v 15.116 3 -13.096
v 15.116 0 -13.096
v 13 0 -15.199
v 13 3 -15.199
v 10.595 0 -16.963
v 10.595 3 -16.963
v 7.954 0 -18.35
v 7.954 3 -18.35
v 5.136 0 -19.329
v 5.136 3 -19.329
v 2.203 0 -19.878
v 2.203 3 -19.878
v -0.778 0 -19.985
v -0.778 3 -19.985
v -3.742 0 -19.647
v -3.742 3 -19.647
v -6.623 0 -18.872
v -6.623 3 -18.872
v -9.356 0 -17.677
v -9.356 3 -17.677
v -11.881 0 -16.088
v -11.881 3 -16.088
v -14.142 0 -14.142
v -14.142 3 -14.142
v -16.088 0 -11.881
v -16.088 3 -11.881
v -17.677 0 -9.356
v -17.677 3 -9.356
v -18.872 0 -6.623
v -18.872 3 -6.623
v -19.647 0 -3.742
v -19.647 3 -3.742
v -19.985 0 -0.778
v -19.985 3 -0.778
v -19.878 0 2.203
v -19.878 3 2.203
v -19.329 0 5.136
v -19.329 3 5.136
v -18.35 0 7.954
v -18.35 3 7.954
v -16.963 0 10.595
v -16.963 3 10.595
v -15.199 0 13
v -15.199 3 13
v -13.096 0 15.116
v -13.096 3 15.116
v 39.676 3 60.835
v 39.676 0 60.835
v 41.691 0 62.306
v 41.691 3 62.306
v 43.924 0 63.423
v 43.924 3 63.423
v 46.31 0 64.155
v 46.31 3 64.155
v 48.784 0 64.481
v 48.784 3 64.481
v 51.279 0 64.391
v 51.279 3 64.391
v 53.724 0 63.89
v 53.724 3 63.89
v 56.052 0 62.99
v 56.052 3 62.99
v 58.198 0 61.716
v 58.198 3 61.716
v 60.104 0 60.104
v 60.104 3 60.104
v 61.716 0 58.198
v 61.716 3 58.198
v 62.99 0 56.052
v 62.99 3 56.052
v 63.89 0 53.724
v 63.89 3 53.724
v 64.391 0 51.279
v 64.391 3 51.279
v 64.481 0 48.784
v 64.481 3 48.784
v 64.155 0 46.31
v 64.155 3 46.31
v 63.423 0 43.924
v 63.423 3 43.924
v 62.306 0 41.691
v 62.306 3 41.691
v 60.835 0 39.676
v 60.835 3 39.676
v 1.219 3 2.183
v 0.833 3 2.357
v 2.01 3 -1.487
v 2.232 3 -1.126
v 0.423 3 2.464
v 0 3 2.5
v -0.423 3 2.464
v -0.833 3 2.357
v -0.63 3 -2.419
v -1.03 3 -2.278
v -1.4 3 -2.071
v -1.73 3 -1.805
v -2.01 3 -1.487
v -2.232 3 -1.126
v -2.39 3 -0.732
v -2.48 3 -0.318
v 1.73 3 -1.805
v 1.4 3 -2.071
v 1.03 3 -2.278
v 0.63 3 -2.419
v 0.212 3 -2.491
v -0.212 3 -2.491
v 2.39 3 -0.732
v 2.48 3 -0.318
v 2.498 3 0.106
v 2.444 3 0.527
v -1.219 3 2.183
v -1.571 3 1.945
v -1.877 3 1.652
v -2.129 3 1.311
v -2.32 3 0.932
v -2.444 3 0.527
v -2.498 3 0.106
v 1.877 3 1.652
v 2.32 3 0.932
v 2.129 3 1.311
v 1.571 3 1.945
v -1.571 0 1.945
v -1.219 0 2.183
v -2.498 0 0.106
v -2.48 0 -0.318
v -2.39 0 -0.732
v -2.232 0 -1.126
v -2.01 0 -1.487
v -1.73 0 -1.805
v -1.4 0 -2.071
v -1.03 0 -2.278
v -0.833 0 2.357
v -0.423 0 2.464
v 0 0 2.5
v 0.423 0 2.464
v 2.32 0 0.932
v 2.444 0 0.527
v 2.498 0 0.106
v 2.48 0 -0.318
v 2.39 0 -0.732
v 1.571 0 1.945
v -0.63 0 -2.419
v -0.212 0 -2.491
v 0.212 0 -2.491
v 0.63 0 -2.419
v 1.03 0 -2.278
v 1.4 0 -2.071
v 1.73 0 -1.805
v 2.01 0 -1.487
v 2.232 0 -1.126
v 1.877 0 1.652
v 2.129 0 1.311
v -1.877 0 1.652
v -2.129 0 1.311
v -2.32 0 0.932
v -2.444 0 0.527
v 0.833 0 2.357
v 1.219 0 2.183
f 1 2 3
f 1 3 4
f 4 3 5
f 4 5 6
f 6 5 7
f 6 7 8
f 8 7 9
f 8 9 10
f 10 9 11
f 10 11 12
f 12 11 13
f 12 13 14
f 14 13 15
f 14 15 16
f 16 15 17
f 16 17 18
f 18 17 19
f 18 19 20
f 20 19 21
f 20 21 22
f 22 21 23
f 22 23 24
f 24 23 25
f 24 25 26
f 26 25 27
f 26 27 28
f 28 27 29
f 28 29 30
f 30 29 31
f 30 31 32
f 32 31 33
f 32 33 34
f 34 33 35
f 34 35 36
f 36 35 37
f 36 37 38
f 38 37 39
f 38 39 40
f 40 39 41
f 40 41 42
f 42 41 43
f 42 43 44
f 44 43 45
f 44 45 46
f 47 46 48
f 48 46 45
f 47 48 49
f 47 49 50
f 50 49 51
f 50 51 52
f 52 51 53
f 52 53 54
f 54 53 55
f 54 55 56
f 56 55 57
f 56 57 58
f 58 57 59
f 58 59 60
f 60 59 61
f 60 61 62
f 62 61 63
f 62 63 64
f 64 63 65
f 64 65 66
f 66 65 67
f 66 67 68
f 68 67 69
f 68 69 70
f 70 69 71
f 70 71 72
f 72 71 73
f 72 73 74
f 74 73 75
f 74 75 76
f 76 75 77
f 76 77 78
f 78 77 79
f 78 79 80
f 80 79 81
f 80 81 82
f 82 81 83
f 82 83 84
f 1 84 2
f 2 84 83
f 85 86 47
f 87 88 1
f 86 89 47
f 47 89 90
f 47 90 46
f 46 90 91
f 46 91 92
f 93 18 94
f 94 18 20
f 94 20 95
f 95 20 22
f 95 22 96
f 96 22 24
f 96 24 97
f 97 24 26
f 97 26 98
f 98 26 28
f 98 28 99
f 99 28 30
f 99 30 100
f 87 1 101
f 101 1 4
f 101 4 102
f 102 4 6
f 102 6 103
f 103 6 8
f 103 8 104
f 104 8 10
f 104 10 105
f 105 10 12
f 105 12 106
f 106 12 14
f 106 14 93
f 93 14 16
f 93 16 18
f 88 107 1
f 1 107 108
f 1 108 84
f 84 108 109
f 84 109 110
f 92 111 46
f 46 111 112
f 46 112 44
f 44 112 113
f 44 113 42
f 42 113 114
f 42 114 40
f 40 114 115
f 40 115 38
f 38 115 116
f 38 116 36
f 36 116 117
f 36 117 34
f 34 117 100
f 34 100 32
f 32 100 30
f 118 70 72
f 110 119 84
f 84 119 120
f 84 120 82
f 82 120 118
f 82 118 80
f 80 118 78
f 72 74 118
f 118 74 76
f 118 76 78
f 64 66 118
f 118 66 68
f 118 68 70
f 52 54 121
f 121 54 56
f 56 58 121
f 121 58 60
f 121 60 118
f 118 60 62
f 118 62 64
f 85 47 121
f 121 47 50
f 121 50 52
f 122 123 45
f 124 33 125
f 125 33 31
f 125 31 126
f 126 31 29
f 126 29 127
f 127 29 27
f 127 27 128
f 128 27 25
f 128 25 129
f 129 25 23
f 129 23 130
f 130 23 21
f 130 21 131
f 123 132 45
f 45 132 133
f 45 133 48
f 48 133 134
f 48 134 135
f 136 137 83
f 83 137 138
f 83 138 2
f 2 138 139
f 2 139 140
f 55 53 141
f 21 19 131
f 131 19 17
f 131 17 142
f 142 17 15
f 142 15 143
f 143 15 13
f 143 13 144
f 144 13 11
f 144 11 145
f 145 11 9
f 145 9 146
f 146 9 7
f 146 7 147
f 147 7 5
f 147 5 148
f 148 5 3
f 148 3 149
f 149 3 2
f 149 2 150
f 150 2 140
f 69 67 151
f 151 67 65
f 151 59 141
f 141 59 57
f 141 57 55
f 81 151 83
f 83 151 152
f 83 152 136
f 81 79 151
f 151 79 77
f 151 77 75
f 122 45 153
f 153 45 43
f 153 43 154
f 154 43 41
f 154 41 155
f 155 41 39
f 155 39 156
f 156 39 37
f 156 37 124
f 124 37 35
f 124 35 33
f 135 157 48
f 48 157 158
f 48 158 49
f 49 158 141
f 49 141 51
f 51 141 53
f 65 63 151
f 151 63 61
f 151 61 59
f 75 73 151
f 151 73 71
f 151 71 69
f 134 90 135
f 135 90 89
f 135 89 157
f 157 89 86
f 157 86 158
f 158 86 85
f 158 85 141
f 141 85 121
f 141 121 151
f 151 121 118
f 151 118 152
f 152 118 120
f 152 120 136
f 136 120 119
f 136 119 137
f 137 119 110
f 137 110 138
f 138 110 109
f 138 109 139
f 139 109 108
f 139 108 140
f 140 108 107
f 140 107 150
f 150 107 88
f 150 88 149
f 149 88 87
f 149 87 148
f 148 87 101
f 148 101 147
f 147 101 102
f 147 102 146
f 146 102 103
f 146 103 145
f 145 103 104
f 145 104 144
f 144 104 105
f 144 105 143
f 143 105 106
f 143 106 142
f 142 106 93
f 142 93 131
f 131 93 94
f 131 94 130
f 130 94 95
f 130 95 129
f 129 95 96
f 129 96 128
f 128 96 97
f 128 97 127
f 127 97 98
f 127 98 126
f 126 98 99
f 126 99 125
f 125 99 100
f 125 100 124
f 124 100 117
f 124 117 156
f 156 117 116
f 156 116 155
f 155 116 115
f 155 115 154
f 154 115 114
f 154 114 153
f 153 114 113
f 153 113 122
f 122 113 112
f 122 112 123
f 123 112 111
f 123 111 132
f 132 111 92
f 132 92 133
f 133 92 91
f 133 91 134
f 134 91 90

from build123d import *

# Parameters (mm, degrees)
SKETCH_1_R          = 20
SKETCH_1_R_2        = 15
EXTRUDE_1_DEPTH     = 3
SKETCH_2_R          = 2.5
CUT_EXTRUDE_1_DEPTH = 92.262525064


with BuildPart() as part:
    # 草图1 → 凸台-拉伸1 (new body)
    with BuildSketch(Plane(origin=(0, 0, 0), x_dir=(1, 0, 0), z_dir=(0, 1, 0))):
        Circle(SKETCH_1_R)
        with BuildLine():
            ThreePointArc((20, 0), (8.309115435, -18.192267607), (-13.095860068, -15.116165158))
            Line((-13.095860068, -15.116165158), (39.675579632, -60.834598551))
            ThreePointArc((39.675579632, -60.834598551), (38.890872965, -38.890872965), (60.834598551, -39.675579632))
            Line((60.834598551, -39.675579632), (15.116165158, 13.095860068))
            ThreePointArc((15.116165158, 13.095860068), (18.73930766, 6.98844392), (20, 0))
        make_face()
        with Locations((49.497474683, -49.497474683)):
            Circle(SKETCH_1_R_2)
    extrude(amount=EXTRUDE_1_DEPTH)

    # 草图2 → 切除-拉伸1 (cut, through all)
    with BuildSketch(Plane(origin=(0, 3, 0), x_dir=(1, 0, 0), z_dir=(0, 1, 0))):
        with Locations(Location((0, 0, 0), (0, 0, 270))):
            Circle(SKETCH_2_R)
    extrude(amount=-CUT_EXTRUDE_1_DEPTH, mode=Mode.SUBTRACT)


solid = part.part
